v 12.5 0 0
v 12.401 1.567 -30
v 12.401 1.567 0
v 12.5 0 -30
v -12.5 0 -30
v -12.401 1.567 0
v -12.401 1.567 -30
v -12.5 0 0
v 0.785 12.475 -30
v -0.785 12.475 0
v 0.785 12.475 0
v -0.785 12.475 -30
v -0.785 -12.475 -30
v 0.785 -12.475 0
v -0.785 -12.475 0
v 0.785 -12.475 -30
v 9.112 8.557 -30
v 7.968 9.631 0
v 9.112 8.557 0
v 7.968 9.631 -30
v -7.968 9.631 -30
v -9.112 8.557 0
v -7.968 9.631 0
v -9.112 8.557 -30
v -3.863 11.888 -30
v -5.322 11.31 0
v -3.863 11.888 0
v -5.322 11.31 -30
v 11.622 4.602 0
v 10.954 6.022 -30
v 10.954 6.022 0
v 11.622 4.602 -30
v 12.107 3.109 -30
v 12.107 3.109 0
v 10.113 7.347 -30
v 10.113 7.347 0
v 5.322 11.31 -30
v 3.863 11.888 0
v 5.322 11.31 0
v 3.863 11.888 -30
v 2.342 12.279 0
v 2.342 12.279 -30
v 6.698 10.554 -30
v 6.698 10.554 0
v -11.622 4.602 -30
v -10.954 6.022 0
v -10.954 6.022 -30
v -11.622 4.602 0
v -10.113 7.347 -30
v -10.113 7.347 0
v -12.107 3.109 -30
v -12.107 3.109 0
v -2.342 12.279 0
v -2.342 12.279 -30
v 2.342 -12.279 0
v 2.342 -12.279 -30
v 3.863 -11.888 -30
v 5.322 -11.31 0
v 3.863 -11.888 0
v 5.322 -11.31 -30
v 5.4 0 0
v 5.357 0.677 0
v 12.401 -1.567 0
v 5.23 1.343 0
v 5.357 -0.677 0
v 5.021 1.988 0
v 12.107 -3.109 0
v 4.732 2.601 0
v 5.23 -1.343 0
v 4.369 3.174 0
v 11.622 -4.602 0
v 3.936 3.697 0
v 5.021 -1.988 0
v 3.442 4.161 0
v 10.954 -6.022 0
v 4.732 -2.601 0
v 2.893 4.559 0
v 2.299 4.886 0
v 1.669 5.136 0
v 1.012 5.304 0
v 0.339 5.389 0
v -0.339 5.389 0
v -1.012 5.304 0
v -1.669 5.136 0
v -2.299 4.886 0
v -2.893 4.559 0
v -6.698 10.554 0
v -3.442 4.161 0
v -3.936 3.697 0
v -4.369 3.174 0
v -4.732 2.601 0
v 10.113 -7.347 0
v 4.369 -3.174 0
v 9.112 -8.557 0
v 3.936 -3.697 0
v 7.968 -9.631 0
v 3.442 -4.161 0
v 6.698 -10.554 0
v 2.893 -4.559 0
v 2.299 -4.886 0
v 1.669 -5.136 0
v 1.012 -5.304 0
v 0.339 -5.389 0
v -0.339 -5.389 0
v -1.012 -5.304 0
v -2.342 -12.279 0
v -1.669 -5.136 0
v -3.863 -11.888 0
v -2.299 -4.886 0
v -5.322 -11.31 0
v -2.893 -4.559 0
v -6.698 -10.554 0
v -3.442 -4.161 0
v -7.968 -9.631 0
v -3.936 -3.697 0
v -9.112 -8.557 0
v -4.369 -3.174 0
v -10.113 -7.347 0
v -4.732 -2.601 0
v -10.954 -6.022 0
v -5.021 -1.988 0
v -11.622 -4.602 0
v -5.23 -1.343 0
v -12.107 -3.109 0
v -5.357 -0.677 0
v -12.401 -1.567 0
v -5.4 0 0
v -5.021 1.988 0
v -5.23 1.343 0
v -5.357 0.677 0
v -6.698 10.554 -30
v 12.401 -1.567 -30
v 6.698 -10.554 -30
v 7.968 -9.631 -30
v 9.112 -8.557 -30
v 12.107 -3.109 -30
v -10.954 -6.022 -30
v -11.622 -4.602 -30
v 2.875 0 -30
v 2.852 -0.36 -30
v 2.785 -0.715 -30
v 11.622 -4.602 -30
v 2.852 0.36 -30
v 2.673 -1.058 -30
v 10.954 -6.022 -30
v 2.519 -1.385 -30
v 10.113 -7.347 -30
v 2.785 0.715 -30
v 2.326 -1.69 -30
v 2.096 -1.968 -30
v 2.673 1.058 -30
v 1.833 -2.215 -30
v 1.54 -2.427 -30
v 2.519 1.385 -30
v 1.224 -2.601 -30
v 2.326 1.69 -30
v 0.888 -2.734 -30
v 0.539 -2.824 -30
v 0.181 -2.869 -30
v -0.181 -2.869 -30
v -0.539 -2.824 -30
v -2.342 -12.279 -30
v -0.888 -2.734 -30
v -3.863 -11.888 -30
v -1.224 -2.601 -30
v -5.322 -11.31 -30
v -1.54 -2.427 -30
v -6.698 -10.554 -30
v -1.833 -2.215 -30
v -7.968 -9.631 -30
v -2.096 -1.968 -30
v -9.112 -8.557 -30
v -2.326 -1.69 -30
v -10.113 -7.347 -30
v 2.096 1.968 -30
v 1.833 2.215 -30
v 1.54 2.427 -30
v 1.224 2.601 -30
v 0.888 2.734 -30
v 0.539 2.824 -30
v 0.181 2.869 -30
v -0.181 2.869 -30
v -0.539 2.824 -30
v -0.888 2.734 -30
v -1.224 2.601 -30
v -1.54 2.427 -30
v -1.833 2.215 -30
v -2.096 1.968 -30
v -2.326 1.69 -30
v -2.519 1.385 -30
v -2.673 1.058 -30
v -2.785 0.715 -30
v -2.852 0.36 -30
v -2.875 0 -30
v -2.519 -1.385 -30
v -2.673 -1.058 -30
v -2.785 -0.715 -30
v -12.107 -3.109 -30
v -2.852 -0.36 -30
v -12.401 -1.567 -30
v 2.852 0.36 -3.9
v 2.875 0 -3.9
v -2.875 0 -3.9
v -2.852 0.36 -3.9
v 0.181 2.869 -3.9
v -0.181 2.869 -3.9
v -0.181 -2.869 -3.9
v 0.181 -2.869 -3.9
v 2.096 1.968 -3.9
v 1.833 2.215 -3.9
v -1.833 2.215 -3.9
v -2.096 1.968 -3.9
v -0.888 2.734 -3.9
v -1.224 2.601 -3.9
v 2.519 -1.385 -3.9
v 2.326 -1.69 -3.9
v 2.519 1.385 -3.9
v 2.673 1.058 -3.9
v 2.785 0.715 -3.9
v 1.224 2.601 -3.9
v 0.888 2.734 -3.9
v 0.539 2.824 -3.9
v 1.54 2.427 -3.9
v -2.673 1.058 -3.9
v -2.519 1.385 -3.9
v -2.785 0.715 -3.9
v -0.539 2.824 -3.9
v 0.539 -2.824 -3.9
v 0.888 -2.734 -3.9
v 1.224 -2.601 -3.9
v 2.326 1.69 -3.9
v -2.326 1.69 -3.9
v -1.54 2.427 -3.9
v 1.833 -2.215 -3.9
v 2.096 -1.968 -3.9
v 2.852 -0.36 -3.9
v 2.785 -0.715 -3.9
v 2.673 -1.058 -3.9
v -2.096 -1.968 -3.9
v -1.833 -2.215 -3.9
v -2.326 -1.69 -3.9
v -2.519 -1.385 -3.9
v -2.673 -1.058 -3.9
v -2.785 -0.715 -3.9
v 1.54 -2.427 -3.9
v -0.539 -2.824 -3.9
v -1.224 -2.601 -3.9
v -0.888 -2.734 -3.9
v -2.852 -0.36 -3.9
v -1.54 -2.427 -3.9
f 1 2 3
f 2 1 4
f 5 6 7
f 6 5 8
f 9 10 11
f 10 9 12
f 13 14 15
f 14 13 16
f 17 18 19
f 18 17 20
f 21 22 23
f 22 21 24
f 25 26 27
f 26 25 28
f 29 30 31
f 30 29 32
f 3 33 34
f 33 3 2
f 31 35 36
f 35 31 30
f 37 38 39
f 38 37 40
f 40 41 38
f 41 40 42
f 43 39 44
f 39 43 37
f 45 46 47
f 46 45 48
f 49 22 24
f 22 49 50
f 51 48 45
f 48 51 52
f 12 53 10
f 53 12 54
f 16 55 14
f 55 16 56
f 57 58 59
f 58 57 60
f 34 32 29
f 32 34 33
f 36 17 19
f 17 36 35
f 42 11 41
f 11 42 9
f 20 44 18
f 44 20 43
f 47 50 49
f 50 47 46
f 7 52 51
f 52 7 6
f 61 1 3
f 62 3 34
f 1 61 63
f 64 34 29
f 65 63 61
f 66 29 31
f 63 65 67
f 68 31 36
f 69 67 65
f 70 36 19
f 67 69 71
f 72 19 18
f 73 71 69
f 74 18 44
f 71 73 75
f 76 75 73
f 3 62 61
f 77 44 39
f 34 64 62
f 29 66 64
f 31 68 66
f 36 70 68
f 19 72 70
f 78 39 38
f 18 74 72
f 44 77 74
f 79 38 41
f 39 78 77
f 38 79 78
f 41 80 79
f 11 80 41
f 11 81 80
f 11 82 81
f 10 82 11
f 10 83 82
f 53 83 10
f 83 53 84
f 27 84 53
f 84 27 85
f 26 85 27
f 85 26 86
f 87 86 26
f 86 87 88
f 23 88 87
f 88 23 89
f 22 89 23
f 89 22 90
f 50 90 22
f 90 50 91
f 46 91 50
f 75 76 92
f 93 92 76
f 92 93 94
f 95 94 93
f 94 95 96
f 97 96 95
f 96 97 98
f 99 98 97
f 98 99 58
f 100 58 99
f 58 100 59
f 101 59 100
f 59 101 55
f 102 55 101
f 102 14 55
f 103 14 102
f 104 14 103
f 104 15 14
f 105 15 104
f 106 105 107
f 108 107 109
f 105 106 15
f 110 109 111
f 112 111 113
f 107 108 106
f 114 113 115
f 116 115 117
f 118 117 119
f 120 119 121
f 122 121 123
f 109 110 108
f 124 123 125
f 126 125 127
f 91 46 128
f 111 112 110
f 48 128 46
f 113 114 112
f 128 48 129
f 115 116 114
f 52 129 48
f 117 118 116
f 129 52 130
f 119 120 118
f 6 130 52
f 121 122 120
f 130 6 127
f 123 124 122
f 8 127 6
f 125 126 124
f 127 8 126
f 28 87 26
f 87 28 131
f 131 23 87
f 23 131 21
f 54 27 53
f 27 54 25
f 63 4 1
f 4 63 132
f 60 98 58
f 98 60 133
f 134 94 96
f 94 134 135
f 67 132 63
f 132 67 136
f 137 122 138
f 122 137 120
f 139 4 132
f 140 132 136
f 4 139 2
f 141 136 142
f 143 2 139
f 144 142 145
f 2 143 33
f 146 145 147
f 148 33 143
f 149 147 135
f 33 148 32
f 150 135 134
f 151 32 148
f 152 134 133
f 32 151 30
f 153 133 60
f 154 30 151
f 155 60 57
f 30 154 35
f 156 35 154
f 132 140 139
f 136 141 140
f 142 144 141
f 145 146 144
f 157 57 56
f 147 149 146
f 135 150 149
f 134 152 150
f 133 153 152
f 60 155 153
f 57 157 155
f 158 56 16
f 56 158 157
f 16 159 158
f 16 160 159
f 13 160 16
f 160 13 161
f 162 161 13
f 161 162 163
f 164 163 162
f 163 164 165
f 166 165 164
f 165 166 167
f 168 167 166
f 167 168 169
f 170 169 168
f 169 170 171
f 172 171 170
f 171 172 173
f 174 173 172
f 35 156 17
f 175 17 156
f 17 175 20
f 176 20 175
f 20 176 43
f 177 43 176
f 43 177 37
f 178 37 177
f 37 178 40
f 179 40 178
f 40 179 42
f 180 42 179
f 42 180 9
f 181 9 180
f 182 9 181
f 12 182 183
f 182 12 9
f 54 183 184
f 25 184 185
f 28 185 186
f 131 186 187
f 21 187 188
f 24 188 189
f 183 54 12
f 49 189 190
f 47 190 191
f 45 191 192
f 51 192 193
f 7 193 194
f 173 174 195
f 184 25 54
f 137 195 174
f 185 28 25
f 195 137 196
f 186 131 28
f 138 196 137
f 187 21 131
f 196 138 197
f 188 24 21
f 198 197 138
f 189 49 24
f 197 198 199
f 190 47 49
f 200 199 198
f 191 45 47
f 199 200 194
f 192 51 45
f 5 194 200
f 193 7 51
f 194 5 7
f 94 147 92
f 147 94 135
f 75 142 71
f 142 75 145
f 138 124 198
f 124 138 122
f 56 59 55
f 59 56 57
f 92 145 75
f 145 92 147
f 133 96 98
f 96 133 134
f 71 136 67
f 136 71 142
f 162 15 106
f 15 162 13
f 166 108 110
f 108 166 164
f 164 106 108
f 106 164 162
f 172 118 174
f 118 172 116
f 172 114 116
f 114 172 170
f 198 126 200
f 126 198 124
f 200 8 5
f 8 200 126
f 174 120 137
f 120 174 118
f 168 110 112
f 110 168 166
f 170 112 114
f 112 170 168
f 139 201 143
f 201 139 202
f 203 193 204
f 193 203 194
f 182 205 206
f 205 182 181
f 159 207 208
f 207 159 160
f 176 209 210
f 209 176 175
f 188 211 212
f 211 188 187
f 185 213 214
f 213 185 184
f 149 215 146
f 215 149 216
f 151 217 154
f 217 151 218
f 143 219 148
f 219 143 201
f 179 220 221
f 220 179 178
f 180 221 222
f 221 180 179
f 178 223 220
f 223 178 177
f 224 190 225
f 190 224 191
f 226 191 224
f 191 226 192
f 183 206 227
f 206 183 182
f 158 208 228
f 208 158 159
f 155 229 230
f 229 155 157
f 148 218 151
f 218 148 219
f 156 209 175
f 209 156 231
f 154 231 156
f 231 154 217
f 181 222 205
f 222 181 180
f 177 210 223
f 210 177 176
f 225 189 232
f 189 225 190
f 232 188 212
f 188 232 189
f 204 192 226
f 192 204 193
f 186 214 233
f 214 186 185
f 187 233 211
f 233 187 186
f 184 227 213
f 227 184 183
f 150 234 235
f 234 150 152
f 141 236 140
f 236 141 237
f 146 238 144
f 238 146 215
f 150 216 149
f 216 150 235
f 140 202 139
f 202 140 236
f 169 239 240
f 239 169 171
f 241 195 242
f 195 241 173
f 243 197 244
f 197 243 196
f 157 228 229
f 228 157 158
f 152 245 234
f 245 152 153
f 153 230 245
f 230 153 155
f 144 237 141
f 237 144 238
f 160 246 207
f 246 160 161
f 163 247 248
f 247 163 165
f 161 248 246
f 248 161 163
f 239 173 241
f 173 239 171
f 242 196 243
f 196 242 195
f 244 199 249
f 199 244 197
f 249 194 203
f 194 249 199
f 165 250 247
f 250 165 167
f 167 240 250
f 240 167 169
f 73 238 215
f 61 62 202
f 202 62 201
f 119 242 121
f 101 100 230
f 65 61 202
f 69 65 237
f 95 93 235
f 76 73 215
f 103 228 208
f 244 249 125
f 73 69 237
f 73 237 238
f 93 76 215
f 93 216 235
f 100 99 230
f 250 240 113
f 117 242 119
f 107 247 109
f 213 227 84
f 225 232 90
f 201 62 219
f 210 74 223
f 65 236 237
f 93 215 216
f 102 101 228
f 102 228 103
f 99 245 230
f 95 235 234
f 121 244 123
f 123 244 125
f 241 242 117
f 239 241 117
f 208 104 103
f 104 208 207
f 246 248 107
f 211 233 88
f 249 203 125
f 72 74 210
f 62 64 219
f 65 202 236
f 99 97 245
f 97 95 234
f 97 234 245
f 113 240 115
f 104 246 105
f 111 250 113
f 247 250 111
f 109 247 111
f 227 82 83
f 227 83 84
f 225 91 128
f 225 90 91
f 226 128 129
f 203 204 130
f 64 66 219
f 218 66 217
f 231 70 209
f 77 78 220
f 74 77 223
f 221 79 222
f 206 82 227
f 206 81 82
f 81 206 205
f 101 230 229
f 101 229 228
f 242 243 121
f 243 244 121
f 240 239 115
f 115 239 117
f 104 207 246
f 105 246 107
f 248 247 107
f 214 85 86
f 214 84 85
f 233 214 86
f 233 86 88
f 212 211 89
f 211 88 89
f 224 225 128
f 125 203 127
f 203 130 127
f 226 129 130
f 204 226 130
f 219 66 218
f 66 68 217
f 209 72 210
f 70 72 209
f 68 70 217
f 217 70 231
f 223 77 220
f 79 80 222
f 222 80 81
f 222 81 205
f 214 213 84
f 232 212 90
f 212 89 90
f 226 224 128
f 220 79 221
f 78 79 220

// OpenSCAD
$fn = 50;

difference() {
	union() {
		translate(v = [0, 0, -30.0]) {
			cylinder(h = 30, r = 12.5);
		}
		#translate(v = [0, 0, -33.0]) {
			cylinder(h = 33, r = 2.875);
		}
	}
	union() {
		translate(v = [0, 0, 0]) {
			rotate(a = [0, 0, 0]) {
				difference() {
					union() {
						translate(v = [0, 0, -33.0]) {
							cylinder(h = 33, r = 2.6);
						}
						translate(v = [0, 0, -3.9]) {
							cylinder(h = 3.9, r1 = 2.875, r2 = 5.4);
						}
						translate(v = [0, 0, -33.0]) {
							cylinder(h = 33, r = 2.875);
						}
						translate(v = [0, 0, -33.0]) {
							cylinder(h = 33, r = 2.6);
						}
					}
					union();
				}
			}
		}
	}
}
